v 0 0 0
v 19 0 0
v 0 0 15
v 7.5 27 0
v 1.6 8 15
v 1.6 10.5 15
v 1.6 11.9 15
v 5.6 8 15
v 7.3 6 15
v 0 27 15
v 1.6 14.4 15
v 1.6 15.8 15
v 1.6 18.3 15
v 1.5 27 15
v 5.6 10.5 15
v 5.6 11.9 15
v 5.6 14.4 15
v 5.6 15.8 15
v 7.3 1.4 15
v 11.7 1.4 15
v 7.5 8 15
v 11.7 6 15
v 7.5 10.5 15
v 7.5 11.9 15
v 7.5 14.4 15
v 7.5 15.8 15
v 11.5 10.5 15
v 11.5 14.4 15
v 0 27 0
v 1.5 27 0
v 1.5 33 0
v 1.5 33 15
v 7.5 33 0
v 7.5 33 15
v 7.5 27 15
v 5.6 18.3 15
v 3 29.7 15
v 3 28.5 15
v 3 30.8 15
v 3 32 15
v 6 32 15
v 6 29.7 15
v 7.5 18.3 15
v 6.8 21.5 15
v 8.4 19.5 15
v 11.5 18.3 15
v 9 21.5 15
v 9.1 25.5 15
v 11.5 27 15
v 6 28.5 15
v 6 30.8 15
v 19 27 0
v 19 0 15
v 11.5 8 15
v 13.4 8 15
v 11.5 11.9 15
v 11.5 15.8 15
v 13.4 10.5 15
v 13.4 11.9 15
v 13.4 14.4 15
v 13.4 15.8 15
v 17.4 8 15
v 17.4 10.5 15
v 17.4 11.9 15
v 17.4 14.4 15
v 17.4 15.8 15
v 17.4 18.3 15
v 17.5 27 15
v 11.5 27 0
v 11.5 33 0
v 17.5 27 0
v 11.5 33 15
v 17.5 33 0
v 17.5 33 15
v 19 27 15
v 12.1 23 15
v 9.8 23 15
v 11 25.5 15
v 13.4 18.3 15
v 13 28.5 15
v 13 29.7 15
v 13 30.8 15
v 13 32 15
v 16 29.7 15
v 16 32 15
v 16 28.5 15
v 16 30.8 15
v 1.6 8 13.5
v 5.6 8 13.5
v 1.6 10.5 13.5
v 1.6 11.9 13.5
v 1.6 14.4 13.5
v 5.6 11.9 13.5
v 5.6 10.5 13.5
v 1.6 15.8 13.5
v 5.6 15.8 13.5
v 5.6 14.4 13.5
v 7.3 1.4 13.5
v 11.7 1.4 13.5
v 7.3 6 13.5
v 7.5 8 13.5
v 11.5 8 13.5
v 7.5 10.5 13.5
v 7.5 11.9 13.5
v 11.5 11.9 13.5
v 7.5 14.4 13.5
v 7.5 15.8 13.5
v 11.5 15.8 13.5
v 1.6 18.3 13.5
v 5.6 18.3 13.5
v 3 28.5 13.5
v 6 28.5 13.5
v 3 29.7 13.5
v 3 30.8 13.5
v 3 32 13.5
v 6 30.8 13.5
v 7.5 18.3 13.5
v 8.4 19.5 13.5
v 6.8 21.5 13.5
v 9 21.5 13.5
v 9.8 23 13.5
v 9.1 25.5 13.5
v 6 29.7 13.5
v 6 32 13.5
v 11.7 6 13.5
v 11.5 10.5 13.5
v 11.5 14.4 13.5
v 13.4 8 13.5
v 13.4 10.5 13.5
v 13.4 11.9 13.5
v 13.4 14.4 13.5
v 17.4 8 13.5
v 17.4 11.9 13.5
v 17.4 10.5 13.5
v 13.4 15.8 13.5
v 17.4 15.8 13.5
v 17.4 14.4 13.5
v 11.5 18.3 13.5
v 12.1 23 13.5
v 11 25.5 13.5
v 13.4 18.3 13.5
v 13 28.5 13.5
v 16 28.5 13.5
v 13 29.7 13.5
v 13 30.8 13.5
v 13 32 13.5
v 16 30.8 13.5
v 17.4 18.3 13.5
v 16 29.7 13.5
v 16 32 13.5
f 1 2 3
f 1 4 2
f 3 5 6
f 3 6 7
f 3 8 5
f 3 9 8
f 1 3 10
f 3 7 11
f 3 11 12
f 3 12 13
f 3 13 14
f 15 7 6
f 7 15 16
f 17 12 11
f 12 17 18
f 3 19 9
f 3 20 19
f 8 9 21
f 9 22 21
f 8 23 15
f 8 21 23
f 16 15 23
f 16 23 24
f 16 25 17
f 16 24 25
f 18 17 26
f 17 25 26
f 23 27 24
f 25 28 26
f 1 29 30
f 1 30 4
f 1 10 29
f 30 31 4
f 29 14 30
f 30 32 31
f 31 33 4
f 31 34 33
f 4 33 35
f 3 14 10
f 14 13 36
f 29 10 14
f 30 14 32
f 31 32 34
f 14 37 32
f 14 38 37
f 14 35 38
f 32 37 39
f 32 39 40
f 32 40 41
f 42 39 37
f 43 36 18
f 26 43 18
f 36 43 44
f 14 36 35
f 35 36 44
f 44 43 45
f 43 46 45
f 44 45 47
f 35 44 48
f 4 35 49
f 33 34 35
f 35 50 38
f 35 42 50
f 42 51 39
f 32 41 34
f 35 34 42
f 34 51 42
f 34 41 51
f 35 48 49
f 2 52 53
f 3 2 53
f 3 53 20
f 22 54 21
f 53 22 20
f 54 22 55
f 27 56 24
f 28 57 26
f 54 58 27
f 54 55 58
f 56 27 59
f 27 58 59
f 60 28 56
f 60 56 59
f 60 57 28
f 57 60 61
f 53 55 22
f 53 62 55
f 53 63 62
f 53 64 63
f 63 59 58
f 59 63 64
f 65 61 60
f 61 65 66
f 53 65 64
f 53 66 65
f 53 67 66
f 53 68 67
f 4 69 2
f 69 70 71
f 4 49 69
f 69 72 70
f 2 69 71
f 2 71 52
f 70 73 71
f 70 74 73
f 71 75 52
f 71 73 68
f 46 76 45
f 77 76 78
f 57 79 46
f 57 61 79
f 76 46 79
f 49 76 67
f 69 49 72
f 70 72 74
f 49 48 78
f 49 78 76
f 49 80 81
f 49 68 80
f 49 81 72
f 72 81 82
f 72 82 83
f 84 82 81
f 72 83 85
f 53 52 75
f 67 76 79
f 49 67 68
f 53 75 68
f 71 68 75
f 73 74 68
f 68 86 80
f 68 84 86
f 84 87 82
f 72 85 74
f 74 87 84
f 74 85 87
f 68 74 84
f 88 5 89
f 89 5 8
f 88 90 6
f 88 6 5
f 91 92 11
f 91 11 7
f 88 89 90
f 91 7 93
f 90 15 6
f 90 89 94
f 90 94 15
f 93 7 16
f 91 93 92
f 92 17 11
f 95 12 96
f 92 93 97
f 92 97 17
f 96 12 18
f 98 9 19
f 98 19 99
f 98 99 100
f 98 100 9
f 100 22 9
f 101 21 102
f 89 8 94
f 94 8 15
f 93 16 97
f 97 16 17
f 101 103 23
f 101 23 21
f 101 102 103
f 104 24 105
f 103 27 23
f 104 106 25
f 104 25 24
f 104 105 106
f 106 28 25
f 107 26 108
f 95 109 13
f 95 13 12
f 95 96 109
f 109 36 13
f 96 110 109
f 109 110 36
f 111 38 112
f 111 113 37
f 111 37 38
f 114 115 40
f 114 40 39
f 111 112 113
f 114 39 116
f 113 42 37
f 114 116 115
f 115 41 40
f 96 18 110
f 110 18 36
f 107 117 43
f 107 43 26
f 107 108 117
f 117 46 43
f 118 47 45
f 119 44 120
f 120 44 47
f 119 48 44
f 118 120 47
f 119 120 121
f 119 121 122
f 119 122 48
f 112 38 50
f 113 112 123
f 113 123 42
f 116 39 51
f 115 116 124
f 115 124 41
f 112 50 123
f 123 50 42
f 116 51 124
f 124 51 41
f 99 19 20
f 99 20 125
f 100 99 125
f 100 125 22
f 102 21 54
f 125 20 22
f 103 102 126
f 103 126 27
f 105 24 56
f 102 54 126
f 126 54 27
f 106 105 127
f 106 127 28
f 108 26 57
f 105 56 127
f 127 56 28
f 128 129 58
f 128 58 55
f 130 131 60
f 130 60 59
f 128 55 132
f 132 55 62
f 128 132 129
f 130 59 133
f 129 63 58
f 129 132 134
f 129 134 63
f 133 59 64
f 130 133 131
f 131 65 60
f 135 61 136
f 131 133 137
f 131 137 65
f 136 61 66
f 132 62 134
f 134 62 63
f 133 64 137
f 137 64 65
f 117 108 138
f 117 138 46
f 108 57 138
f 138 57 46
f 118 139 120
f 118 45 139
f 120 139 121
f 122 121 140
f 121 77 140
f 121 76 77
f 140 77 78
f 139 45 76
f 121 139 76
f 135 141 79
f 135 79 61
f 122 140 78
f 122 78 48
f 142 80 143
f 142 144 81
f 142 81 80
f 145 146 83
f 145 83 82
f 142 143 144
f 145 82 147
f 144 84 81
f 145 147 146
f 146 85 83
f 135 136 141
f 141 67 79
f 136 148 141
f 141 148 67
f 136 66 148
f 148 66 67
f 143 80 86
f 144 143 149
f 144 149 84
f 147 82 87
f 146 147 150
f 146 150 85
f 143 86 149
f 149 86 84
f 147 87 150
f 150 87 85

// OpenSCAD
// Building miniatures — Tech, AI & Digital
// Units: millimetres. X = width; Y = facade height; Z = depth.
// Print flat on the back at Z=0. Front Z=15; recesses are 1.5 mm deep.
$fn=96;
depth=15;
recess=1.5;
module rect(x,y,w,h) { translate([x,y]) square([w,h]); }
module disc(x,y,r) { translate([x,y]) circle(r=r); }
module rr(x,y,w,h,r=1) { hull() for(a=[x+r,x+w-r],b=[y+r,y+h-r]) disc(a,b,r); }
module stroke(a,b,w=1.4) { hull() {disc(a[0],a[1],w/2);disc(b[0],b[1],w/2);} }
module ring(x,y,r,w=1.4) { difference(){disc(x,y,r);disc(x,y,r-w);} }
module framed(x,y,w,h,t=1.4) { difference(){rect(x,y,w,h);rect(x+t,y+t,w-2*t,h-2*t);} }
module arrow(a,b,w=1.5) { v=b-a; u=v/norm(v); n=[-u[1],u[0]]; tip=b; neck=b-u*2.8; stroke(a,neck,w); polygon([tip,neck+n*1.9,neck-n*1.9]); }
module building(){difference(){linear_extrude(height=depth) silhouette();translate([0,0,depth-recess]) linear_extrude(height=recess+0.2) details();}}
building();

module silhouette(){union(){rect(0,0,19,27);rect(1.5,27,6,6);rect(11.5,27,6,6);}}
module details(){
 rect(7.3,1.4,4.4,4.6);
 for(x=[1.6,7.5,13.4],y=[8,11.9,15.8]) rect(x,y,4,2.5);
 polygon([[9.1,25.5],[6.8,21.5],[9.0,21.5],[8.4,19.5],[12.1,23.0],[9.8,23.0],[11.0,25.5]]);
 for(x=[3.0,13.0]) for(y=[28.5,30.8]) rect(x,y,3,1.2);
}
